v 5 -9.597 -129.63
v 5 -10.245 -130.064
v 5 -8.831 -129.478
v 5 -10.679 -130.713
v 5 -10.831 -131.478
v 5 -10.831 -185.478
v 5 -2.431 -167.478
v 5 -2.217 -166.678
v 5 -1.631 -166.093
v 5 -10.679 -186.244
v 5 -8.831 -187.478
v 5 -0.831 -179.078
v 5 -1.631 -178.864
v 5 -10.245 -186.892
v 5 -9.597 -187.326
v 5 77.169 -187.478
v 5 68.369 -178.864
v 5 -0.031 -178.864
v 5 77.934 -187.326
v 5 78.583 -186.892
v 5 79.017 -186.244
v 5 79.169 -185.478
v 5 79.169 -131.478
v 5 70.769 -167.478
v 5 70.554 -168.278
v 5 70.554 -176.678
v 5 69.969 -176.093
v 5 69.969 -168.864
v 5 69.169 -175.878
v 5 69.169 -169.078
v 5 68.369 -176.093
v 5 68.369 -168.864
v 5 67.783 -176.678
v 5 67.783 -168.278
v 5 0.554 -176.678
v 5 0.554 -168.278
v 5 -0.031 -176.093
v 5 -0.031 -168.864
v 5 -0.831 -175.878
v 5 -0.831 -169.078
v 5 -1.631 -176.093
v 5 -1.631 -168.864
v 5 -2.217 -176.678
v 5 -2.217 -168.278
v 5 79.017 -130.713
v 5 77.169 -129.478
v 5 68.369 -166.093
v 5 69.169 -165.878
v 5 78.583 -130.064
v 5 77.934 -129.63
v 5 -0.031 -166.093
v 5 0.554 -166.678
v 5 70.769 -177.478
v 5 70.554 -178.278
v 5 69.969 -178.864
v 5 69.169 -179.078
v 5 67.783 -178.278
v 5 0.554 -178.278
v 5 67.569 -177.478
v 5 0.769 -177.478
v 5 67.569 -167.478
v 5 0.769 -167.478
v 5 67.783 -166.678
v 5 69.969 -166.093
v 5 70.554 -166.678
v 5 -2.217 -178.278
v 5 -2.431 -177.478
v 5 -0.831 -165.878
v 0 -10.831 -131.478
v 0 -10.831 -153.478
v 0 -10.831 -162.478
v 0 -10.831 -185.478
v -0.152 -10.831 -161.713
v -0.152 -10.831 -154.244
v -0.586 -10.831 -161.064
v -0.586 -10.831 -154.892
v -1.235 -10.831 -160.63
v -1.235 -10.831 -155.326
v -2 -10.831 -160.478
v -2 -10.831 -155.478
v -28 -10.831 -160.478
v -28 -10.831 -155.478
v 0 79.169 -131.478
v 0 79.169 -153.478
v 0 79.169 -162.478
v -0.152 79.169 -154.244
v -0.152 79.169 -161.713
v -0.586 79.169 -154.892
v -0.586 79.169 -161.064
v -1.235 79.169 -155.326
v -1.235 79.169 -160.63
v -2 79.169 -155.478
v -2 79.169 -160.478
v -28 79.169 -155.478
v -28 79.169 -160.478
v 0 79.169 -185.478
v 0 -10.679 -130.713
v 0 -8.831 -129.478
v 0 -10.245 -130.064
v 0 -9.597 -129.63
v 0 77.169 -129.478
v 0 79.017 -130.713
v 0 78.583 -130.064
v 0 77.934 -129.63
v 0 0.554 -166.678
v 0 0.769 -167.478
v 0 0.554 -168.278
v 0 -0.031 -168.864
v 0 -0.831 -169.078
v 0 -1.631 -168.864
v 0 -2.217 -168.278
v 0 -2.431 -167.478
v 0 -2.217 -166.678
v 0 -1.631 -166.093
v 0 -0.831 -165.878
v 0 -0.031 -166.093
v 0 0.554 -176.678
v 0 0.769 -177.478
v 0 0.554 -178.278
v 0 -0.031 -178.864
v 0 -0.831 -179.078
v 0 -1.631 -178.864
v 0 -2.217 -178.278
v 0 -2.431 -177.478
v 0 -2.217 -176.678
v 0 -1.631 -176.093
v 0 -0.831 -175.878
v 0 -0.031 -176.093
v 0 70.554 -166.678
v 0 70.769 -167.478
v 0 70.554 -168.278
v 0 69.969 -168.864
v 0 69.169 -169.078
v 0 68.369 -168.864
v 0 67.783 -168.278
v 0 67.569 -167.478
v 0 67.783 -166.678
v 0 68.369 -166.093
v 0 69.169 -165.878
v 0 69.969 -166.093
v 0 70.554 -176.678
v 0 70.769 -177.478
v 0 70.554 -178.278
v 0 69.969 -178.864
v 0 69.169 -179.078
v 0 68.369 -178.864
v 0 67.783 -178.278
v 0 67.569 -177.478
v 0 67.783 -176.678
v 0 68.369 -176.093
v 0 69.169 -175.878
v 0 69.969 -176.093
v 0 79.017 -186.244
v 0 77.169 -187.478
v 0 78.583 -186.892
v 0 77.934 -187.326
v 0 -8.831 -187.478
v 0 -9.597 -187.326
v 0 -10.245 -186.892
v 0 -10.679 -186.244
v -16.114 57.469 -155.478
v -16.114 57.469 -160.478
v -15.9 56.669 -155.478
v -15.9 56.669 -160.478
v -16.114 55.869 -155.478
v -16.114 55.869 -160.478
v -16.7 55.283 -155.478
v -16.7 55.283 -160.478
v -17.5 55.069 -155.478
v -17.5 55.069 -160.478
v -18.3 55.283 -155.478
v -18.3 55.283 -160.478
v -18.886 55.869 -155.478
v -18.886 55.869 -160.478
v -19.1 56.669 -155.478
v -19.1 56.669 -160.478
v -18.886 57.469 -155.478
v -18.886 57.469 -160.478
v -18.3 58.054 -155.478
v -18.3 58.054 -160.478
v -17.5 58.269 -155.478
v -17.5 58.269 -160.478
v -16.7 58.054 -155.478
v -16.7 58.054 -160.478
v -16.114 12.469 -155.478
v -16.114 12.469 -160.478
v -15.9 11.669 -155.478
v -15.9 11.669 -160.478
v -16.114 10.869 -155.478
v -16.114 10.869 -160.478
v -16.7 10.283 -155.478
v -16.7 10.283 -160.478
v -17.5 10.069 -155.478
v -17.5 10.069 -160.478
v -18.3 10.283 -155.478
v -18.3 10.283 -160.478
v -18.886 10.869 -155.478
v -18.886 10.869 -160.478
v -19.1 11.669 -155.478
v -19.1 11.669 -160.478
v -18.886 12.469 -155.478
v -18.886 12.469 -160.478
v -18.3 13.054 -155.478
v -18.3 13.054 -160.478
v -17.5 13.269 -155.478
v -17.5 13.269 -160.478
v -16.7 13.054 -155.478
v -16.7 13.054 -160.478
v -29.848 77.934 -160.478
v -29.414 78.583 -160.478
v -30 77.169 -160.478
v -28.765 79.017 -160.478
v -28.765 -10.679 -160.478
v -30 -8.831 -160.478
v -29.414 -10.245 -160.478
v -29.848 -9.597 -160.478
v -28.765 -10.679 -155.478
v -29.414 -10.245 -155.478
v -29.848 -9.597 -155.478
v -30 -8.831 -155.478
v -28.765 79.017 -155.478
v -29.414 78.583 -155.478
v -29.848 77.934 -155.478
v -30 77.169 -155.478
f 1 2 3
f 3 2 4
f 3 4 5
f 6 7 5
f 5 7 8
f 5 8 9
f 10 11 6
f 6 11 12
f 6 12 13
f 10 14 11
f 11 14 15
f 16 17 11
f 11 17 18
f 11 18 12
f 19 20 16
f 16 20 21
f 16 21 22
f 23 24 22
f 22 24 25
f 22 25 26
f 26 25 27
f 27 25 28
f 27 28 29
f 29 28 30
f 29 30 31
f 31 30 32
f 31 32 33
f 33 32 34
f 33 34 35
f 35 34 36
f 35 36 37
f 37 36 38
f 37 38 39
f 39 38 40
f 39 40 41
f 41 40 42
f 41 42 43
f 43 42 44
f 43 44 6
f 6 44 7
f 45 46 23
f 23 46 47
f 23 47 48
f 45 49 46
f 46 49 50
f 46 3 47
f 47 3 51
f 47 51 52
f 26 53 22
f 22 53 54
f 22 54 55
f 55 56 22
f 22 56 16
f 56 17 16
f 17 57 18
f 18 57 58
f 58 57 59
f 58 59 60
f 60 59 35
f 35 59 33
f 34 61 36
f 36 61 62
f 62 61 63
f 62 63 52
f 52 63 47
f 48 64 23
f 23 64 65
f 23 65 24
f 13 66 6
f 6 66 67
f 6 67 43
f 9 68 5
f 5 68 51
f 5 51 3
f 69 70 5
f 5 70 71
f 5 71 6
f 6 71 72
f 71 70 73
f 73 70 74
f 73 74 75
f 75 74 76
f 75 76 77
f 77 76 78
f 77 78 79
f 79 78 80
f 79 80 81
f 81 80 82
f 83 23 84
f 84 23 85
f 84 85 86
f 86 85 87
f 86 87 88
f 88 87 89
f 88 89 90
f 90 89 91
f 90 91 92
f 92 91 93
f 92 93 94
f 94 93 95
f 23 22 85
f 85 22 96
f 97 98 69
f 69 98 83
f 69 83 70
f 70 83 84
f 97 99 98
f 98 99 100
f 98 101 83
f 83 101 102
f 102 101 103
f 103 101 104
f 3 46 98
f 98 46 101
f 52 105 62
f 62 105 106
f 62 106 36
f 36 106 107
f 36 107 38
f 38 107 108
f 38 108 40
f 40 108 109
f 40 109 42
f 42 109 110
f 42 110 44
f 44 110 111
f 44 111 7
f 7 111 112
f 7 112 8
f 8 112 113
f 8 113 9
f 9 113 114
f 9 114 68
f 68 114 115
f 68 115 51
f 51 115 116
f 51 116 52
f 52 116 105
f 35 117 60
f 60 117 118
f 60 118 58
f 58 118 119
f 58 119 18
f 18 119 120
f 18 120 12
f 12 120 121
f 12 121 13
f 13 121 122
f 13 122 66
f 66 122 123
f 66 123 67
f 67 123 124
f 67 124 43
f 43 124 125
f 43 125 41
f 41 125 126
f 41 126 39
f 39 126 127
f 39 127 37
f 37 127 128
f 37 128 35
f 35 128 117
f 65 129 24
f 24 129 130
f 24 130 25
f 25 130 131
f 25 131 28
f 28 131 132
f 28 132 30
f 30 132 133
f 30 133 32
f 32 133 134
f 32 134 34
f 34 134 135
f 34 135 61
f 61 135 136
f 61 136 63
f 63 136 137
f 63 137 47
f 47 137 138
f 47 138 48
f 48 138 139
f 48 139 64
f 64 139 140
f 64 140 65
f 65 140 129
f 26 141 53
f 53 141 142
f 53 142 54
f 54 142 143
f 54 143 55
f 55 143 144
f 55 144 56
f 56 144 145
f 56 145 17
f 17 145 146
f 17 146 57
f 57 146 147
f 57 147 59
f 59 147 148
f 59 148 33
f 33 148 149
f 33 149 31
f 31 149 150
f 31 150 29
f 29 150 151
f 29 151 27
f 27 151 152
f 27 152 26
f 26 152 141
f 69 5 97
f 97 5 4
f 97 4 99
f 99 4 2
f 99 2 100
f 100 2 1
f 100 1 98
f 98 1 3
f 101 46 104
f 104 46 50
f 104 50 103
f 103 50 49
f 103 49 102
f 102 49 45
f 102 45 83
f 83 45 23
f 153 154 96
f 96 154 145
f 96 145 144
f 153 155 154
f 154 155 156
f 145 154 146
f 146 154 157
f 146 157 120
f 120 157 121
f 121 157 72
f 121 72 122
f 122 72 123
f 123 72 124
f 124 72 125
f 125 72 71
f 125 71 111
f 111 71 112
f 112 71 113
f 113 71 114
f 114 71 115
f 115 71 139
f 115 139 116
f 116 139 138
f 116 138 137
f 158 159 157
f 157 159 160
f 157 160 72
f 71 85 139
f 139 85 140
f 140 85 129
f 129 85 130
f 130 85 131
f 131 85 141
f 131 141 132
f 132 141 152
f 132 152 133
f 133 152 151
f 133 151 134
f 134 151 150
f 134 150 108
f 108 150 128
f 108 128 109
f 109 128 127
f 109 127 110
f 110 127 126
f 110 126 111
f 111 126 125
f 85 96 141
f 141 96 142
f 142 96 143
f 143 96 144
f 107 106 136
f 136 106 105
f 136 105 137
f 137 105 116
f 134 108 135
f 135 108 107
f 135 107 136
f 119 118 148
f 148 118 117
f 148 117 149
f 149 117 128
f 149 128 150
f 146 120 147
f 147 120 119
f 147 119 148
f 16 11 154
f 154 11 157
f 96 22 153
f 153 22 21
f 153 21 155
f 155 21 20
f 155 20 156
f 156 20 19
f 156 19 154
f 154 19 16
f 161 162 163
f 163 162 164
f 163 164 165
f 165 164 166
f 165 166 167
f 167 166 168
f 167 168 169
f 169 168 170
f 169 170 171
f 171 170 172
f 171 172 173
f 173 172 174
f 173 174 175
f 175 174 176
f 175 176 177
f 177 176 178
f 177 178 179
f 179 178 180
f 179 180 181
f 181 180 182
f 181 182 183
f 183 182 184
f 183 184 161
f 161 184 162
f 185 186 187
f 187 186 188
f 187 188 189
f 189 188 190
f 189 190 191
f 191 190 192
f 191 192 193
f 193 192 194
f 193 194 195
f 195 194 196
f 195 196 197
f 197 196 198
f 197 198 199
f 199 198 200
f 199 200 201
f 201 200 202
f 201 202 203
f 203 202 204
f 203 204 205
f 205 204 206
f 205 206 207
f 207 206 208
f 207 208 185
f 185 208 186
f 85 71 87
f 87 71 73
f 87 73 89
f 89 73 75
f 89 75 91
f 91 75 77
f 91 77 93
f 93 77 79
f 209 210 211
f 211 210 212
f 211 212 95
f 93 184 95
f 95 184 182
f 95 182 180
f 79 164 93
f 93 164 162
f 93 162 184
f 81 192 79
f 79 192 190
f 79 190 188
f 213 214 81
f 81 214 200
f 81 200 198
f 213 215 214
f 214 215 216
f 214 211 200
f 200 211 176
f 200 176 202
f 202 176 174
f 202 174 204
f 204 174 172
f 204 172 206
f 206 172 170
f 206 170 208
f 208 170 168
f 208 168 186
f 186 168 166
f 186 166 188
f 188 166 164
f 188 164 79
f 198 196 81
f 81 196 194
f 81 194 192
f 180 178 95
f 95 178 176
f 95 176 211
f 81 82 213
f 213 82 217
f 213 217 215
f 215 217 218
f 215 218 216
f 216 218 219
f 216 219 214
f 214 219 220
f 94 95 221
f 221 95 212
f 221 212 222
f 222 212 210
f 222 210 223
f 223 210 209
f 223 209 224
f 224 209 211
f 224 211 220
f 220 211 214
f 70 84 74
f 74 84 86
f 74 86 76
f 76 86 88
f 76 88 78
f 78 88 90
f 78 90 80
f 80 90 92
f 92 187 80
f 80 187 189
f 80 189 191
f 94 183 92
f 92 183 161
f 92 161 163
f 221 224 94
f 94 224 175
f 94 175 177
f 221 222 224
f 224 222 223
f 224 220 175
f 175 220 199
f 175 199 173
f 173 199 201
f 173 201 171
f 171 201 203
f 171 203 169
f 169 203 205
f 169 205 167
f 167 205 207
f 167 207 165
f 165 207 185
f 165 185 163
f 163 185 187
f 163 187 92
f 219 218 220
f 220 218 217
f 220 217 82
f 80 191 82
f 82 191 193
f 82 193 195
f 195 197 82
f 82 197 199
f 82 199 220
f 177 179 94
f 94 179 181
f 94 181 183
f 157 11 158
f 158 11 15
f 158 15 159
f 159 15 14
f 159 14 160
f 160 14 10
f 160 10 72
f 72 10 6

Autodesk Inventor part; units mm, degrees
ref_plane "YZ Plane" through (0, 0, 0) normal (1, 0, 0) x (0, 1, 0)
ref_plane "XZ Plane" through (0, 0, 0) normal (0, 1, 0) x (-1, 0, 0)
ref_plane "XY Plane" through (0, 0, 0) normal (0, 0, 1) x (1, 0, 0)
sketch "スケッチ1" plane through (0, 0, 0) normal (1, 0, 0) x (0, 1, 0)
  line L0 (-10.8312, -155.4782) -> (79.1688, -155.4782)
  line L1 (79.1688, -155.4782) -> (79.1688, -129.4782)
  line L2 (79.1688, -129.4782) -> (-10.8312, -129.4782)
  line L3 (-10.8312, -129.4782) -> (-10.8312, -155.4782)
  line L4 (-10.8312, -187.4782) -> (-10.8312, 372.5218)
  line L5 (79.1688, 372.5218) -> (79.1688, -187.4782)
  line L6 (-10.8312, -187.4782) -> (79.1688, -187.4782)
  line L7 (79.1688, -187.4782) -> (79.1688, -160.4782)
  line L8 (79.1688, -160.4782) -> (-10.8312, -160.4782)
  line L9 (-10.8312, -160.4782) -> (-10.8312, -187.4782)
  circle A0 centre (-0.8312, -167.4782) radius 1.6
  line L10 (-10.8312, -160.4782) -> (79.1688, -160.4782)
  line L11 (79.1688, -160.4782) -> (79.1688, -129.4782)
  line L12 (79.1688, -129.4782) -> (-10.8312, -129.4782)
  line L13 (-10.8312, -129.4782) -> (-10.8312, -160.4782)
  circle A1 centre (-0.8312, -167.4782) radius 1.6
  circle A2 centre (-0.8312, -177.4782) radius 1.6
  circle A3 centre (-0.8312, -177.4782) radius 1.6
  circle A4 centre (69.1688, -167.4782) radius 1.6
  circle A5 centre (69.1688, -167.4782) radius 1.6
  circle A6 centre (69.1688, -177.4782) radius 1.6
  circle A7 centre (69.1688, -177.4782) radius 1.6
  point P0 (0, 0)
  point P1 (-65.8312, -380.4782)
  dimension "d0" = 90
  dimension "d1" = 26
  dimension "d2" = 7
  dimension "d3" = 5
  dimension "d4" = 0
  dimension "d5" = 3.2
  dimension "d6" = 3.2
  dimension "d7" = 3.2
  dimension "d8" = 3.2
extrude "押し出し1" add sketch "スケッチ1" along normal blind 5
extrude "押し出し2" add sketch "スケッチ1" against normal blind 30 contours L0 L5 L8 L4
sketch "スケッチ2" plane through (0, -10.8312, -160.4782) normal (0, 0, -1) x (-1, 0, 0)
  line L0 (30, 90) -> (30, 0) projected
  line L1 (30, 45) -> (0, 45)
  line L2 (0, 0) -> (30, 0) projected
  line L3 (17.5, 0) -> (17.5, 90)
  line L4 (0, 90) -> (30, 90) projected
  circle A0 centre (17.5, 22.5) radius 1.6
  circle A1 centre (17.5, 67.5) radius 1.6
  point P0 (0, 10.8312)
  point P1 (15, 45)
  dimension "d13" = 12.5
  dimension "d14" = 3.2
  dimension "d15" = 3.2
  dimension "d16" = 22.5
  dimension "d17" = 22.5
hole "穴1" at (-17.5, 11.6688, -160.4782) at (-17.5, 56.6688, -160.4782) direction (0, 0, 1) diameter 3.2 end through all
fillet "フィレット1" radius 2 8 edges at (0, 34.1688, -160.4782) (-30, -10.8312, -157.9782) (-30, 79.1688, -157.9782) (0, 34.1688, -155.4782) (2.5, -10.8312, -187.4782) (2.5, 79.1688, -187.4782) (2.5, 79.1688, -129.4782) (2.5, -10.8312, -129.4782)
equation "\"d17\" = d16"
properties part number "dribl-v3-3DP-2" material "ABS プラスチック"
